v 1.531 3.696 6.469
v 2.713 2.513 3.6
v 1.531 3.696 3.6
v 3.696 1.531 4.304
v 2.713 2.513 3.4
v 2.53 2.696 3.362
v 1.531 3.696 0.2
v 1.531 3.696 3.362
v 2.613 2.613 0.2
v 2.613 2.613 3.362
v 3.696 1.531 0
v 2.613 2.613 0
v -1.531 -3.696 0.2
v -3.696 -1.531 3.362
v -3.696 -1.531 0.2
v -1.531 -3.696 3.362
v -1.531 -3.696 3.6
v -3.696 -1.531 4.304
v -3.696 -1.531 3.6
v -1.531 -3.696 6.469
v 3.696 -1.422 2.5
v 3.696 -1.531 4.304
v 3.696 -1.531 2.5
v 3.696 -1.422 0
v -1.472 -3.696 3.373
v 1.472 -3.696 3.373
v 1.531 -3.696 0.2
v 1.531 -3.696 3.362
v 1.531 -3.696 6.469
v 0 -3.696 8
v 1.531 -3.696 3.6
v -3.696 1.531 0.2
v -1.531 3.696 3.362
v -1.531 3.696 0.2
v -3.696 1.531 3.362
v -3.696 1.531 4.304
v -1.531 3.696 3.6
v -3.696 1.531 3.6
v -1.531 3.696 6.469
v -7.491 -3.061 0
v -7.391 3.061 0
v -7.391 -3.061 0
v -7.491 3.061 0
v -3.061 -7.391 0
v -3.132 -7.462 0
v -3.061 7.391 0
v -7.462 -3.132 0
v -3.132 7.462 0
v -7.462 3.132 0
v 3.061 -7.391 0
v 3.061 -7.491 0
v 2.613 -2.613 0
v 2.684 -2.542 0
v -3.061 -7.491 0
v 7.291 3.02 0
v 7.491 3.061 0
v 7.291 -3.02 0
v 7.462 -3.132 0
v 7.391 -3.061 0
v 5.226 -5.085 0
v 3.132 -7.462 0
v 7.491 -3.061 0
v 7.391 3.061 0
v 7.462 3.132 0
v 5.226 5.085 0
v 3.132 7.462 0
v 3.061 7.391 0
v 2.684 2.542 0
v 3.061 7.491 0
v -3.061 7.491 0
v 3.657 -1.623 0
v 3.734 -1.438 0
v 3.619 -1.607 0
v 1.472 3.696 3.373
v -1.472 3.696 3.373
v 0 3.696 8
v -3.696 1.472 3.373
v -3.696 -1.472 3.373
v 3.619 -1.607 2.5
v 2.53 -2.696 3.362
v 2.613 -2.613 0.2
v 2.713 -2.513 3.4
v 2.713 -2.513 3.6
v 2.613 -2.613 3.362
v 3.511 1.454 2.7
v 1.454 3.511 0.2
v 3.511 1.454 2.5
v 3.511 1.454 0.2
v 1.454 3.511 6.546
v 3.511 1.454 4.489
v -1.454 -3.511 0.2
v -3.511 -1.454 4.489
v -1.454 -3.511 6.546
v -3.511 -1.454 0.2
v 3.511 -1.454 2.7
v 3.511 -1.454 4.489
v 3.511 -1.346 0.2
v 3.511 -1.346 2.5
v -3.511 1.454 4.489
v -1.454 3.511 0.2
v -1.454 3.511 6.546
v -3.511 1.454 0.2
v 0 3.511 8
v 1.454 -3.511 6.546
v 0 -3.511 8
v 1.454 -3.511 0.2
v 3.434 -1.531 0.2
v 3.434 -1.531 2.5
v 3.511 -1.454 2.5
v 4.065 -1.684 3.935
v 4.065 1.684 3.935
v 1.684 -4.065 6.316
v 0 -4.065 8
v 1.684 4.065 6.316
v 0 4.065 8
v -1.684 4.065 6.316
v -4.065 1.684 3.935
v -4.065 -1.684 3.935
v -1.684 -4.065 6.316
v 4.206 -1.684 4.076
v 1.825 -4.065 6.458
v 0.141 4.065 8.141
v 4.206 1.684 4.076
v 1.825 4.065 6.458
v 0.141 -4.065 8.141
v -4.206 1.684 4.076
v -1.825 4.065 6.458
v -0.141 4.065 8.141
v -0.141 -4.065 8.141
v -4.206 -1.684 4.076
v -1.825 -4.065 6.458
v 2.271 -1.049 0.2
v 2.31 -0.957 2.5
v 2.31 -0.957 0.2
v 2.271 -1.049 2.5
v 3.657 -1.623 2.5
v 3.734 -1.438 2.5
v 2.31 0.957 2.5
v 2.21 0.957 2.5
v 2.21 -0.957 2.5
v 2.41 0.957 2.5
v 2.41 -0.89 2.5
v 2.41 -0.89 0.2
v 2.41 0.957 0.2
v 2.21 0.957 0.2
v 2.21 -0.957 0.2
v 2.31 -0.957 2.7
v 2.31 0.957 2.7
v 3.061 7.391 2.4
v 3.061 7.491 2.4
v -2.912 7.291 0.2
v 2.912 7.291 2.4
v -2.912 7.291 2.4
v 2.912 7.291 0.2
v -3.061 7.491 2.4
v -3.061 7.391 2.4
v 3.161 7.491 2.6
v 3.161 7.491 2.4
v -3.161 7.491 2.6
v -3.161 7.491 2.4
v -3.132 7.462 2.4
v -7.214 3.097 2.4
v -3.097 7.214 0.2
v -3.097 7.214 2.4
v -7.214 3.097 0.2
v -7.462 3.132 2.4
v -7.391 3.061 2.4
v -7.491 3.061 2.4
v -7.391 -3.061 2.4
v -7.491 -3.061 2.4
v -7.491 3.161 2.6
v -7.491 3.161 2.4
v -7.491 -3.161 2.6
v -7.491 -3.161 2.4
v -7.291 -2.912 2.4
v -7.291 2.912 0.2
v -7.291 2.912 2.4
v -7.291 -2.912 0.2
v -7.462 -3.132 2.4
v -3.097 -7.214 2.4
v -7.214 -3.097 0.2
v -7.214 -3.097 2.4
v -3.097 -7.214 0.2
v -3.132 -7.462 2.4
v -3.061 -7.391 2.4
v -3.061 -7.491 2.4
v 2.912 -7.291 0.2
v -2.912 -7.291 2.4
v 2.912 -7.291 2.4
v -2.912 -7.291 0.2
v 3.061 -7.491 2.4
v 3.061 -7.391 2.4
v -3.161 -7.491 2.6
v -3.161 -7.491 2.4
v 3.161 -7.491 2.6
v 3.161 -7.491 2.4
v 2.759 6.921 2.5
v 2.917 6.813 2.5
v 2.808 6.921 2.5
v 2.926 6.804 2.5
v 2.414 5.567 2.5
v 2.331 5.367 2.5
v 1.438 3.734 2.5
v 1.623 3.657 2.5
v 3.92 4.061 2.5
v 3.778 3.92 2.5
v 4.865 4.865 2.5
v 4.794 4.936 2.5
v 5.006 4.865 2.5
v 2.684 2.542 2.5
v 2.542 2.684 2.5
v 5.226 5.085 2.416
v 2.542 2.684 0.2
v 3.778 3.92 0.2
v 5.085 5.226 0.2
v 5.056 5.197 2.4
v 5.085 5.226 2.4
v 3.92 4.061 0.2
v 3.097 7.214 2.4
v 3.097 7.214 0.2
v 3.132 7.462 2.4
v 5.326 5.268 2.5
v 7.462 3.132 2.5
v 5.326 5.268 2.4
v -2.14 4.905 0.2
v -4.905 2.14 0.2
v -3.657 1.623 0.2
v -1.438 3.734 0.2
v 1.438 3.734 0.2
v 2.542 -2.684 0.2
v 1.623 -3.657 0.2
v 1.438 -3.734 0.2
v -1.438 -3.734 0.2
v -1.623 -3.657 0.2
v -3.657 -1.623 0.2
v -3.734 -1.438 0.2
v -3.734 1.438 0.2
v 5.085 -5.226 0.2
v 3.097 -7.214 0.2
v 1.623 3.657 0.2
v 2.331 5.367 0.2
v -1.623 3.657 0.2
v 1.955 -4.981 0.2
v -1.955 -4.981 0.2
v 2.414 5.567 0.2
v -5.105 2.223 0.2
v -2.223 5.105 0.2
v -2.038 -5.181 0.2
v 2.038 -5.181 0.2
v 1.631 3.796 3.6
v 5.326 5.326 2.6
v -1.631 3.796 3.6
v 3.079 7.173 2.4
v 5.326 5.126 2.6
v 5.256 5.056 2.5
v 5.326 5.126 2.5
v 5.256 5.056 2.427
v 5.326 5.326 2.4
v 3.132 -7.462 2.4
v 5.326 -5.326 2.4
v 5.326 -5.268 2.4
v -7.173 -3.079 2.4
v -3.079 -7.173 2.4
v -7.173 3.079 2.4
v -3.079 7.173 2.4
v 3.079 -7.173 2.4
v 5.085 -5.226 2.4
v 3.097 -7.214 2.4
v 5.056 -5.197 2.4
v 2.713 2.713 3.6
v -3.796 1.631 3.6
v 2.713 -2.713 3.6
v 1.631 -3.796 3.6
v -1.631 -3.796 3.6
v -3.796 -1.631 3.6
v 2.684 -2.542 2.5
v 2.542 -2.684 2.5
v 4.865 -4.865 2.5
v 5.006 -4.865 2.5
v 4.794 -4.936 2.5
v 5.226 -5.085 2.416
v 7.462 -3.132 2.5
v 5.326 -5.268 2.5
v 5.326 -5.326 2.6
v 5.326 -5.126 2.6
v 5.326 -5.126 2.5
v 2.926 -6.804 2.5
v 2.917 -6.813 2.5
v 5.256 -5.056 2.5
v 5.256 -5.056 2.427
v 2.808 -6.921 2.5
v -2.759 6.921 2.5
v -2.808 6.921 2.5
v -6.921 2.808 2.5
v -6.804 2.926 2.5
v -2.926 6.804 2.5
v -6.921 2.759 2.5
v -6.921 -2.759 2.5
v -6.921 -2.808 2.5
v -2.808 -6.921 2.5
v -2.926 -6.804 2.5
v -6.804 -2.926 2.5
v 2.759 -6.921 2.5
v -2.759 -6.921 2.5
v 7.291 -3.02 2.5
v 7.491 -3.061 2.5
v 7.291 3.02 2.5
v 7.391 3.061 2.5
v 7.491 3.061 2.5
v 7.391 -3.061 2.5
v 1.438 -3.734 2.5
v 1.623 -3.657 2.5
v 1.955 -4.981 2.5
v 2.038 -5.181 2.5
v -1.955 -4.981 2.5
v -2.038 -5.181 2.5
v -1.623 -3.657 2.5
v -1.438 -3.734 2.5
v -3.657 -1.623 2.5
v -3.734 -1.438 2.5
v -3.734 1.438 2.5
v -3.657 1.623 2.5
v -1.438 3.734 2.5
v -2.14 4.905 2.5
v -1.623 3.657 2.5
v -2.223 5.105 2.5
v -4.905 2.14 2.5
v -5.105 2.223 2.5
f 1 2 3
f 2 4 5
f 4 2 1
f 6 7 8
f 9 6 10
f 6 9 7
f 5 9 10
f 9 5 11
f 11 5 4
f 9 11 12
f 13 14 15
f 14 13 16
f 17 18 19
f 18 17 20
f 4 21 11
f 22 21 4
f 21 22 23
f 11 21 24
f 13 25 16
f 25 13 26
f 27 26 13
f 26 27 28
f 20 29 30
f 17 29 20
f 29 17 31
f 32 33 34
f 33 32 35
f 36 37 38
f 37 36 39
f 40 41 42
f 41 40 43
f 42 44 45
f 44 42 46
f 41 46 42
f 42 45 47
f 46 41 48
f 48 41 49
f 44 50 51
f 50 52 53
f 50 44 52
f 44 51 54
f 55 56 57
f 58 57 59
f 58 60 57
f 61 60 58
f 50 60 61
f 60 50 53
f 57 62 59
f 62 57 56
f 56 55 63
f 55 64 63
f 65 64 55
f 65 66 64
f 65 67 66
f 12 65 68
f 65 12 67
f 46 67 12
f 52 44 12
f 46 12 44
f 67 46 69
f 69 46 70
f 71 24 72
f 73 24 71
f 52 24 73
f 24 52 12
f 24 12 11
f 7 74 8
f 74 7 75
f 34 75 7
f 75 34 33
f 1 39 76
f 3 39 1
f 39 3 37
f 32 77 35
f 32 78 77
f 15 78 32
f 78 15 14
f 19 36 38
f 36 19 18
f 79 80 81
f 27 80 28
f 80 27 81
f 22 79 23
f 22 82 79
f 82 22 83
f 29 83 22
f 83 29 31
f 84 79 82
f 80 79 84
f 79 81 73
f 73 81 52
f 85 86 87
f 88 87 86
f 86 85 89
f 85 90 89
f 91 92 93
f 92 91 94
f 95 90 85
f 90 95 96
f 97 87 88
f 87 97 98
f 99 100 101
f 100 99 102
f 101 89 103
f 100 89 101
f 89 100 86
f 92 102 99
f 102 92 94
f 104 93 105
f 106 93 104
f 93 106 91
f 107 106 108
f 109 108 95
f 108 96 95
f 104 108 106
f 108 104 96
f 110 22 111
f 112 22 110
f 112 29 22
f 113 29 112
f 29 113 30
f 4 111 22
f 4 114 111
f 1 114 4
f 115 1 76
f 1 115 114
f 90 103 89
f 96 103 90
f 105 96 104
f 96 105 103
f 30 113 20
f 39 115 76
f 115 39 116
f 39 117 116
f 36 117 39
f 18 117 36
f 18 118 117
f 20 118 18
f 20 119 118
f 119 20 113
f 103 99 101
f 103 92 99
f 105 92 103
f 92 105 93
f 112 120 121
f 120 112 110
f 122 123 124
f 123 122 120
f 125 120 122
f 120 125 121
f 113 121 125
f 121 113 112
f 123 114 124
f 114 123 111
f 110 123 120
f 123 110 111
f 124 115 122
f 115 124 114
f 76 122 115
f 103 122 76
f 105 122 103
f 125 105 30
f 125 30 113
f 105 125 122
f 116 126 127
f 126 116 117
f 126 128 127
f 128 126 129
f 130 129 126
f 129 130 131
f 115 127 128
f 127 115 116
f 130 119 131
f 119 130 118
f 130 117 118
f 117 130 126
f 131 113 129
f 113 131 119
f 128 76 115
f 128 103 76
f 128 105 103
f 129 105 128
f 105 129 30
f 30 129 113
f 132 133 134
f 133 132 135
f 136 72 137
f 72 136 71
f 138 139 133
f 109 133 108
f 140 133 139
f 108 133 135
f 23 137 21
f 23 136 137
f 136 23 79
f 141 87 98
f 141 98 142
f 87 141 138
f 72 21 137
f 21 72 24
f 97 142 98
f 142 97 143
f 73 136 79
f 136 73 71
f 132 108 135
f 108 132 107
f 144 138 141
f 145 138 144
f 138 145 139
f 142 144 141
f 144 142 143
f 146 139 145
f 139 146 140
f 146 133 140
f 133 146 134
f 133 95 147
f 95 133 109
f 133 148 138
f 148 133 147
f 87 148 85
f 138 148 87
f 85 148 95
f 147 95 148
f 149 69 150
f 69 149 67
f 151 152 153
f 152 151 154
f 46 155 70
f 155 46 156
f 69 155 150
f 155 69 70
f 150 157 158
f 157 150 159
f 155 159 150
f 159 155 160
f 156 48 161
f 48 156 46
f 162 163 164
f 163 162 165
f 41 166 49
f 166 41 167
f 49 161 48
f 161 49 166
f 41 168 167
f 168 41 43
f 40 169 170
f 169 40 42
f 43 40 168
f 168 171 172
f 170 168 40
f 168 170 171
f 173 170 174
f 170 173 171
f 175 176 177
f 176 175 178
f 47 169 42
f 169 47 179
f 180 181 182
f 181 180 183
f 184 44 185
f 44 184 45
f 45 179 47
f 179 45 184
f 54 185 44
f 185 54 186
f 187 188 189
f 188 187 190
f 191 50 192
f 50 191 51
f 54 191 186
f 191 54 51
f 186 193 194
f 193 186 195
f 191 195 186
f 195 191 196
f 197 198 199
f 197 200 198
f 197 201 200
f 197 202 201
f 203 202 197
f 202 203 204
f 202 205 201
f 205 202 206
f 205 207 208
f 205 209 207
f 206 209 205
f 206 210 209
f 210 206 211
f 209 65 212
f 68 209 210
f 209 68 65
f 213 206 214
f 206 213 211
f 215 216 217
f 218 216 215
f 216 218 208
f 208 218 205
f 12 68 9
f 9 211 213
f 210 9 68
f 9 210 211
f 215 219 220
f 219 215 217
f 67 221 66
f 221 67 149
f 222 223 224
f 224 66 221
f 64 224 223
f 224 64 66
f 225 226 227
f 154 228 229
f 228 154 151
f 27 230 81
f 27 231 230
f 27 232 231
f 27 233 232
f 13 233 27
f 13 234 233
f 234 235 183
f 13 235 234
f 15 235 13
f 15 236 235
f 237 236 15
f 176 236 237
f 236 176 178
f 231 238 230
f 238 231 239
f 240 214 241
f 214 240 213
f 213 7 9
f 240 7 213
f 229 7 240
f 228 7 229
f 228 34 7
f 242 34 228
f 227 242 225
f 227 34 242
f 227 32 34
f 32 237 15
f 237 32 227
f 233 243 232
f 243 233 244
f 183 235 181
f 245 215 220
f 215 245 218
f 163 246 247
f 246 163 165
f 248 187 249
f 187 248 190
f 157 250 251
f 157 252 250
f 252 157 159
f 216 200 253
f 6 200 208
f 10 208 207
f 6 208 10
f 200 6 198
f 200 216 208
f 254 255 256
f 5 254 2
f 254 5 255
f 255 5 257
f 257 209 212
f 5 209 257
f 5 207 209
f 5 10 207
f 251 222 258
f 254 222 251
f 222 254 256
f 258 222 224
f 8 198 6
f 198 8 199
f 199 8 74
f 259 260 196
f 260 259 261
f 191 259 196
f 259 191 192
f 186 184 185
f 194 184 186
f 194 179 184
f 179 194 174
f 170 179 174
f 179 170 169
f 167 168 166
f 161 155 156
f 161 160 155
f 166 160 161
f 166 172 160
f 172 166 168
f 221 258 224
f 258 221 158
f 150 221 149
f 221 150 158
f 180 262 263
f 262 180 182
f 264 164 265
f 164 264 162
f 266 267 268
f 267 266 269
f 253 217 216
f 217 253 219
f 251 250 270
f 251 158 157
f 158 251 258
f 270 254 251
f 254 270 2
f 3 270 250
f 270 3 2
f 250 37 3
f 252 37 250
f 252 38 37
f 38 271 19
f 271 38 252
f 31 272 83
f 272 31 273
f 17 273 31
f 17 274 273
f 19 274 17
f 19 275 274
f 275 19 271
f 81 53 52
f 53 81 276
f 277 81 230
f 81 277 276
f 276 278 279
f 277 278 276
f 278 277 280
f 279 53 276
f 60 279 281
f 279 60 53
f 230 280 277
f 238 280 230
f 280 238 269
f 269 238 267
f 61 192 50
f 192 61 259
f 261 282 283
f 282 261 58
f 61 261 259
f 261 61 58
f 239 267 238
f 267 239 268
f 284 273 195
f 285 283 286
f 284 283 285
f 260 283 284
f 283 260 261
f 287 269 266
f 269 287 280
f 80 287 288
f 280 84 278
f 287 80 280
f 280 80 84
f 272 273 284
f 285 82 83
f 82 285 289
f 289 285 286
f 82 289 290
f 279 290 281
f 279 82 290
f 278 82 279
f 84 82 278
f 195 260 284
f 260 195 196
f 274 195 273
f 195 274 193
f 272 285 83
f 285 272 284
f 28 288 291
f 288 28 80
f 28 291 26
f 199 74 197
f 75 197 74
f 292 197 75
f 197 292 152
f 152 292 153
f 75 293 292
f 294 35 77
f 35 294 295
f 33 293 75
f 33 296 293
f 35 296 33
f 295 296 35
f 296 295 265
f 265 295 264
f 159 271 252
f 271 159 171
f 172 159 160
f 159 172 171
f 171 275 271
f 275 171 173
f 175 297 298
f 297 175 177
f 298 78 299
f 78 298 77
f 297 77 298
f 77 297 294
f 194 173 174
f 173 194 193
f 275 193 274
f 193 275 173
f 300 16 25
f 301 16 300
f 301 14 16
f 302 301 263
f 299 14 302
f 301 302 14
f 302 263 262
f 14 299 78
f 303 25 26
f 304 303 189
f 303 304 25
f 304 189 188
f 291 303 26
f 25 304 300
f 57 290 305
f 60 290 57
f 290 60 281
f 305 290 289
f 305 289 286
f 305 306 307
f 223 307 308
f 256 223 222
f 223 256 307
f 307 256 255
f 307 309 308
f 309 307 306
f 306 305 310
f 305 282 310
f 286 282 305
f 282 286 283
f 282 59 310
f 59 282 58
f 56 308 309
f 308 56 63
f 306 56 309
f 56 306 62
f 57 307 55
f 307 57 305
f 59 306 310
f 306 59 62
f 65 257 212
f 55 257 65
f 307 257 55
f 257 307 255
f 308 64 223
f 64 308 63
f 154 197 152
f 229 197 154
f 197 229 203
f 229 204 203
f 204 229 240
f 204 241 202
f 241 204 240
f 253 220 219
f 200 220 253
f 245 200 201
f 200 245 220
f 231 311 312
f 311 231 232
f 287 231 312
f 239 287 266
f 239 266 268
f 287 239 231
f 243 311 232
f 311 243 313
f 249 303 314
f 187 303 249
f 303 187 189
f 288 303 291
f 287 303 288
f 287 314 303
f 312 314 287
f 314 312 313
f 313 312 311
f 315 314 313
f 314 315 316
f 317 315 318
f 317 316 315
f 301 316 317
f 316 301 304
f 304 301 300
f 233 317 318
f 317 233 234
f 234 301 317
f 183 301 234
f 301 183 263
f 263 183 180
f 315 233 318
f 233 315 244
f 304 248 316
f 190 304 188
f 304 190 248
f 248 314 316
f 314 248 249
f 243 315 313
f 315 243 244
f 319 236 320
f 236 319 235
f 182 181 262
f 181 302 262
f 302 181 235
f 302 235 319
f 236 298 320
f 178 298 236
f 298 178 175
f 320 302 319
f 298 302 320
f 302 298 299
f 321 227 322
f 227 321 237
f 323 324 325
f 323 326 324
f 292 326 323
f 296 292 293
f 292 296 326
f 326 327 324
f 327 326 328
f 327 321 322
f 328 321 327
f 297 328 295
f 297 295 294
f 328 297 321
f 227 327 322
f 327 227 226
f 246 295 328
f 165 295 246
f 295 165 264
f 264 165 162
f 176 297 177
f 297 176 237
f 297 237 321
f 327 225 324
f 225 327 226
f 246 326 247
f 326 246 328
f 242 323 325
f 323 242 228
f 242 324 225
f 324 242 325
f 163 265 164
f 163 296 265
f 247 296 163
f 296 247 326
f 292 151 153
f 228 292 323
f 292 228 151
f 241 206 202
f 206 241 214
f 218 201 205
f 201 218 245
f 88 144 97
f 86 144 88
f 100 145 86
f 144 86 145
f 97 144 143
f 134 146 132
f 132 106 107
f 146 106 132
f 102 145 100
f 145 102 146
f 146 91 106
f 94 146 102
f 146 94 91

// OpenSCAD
// configure the rendering
show_floor = true;
show_roof = true;

// constants
gr = 1.61803; // golden ration

// configure the house
wt = 0.2;  // wall thickness
corners = 8; // number of corners in main room
mrr = 4; // main room radius
mrh = 4; // main room height
mrrh = 2; // main room roof height
hr = mrr + 4; // house radius
orh = 2.5; // outer room height
orrh = 1; // outer room roof height

// calculate approximate house size
function house_size() =
   let(v=360/corners/2)
   let(a=hr*sin(v))
   let(b=hr*cos(v))
   (corners-2)*a*b;
echo("area of house = ", house_size());

// calculate the coordinates for the corners
function p(i, r) =
   let (vz = 360/corners/2)
   let (angle=i*(360/corners) - vz)
   [ r*cos(angle)
   , r*sin(angle)
   ];

function inbetween(p1, p2, procent) =
    let (x_diff = p2[0] - p1[0])
    let (y_diff = p2[1] - p1[1])
    [ p1[0] + x_diff*procent/100
    , p1[1] + y_diff*procent/100
    ];

// create a wall of thickness wt
module wall(p1, p2, h) {
    let (x_diff = p2[0] - p1[0])
    let (y_diff = p2[1] - p1[1])
    let (len = sqrt(pow(x_diff, 2) +
                    pow(y_diff, 2)))
    linear_extrude(height = h)
    translate(p1)
    rotate(atan2(y_diff, x_diff))
    translate([0, -wt/2])
    square([len, wt]);
}

module octagon(r, h) {
    coords=[for (i = [0:corners-1]) p(i, r)];
    linear_extrude(height = h)
    polygon(coords);
}

module octawalls(r, h) {
    difference () {
        octagon(r, h);
        translate([0, 0, -wt])
        octagon(r - wt, h + 2*wt);
    }
}

module hall(size, h) {
    r = mrr - size;
    wall(p(0, mrr), p(0, r), h);
    wall(p(0, r), p(1, r), h);
    translate([0, 0, h])
    linear_extrude(height = wt)
    polygon([p(0,mrr), p(0, r), p(1, r), p(1, mrr)]);
}

module main_roof(th) {
    vr = 45; // main roof angle
    rr = mrr + 0.4; // roof radius
    module half_roof() {
        assert(corners % 2 == 0);
        translate([0,0,mrh + mrr*tan(vr)])
        rotate(vr, [0, 1, 0])
        rotate(-90)
        difference() {
            scale([1,1/cos(vr), 1])
            octagon(rr, th);
            translate([0, -rr, 0])
            cube([rr*2, rr*2, 3*th], center = true);
        }
    }
    half_roof();
    rotate(180) half_roof();
}

// floor of main room
if (show_floor) {
    octagon(mrr, wt);
}
// walls of main room
difference() {
    octawalls(mrr, mrh+4);
    main_roof(wt*14);
}
// roof of main room
if (show_roof) {
    main_roof(wt);
}

// hall
hall(1.5, orh);

// outer walls
for (i = [2:corners-2])
    wall(p(i, hr), p(i+1, hr), orh);

// the non-standard outer wall on the right
module non_standard_right() {
    // calculate corners of room
    p1 = inbetween(p(1,mrr), p(2, mrr), 50);
    p2 = inbetween(p(1,hr), p(2, hr), 50);
    p3 = p(2, hr);
    p4 = p(2, mrr);
    // walls
    wall(p1, p2, orh);
    wall(p2, p3, orh);
    // floor
    if (show_floor) {
        linear_extrude(height = wt)
        polygon([p1, p2, p3, p4]);
    }
    // roof
    if (show_roof) {
        translate([0,0,orh])
        hull()
        for(p=[ [p1[0], p1[1], 0] + [0,0,orrh]
              , p2, p3
              , [p4[0], p4[1], 0] + [0,0,orrh]])
            translate(p) cube(wt, true);
    }
}
non_standard_right();

// the non-standard outer wall on the left
module non_standard_left() {
    // calculate corners of room
    p1 = inbetween(p(corners-1,mrr), p(0, mrr), 50);
    p2 = inbetween(p(corners-1,hr), p(0, hr), 50);
    p3 = p(corners-1, hr);
    p4 = p(corners-1, mrr);
    // walls
    wall(p1, p2, orh);
    wall(p2, p3, orh);
    // floor
    if (show_floor) {
        linear_extrude(height = wt)
        polygon([p1, p2, p3, p4]);
    }
    // roof
    if (show_roof) {
        translate([0,0,orh])
        hull()
        for(p=[ [p1[0], p1[1], 0] + [0,0,orrh]
              , p2, p3
              , [p4[0], p4[1], 0] + [0,0,orrh]])
            translate(p) cube(wt, true);
    }
}
non_standard_left();

// floor on outer rooms
if (show_floor) {
    for (i = [2:corners-2])
        linear_extrude(height = wt)
        polygon([p(i, mrr), p(i, hr), p(i+1, hr), p(i+1,mrr)]);
}

// roof on outer rooms
if (show_roof) {
    for (i = [2:corners-2])
        let (p1 = p(i, mrr))
        let (p2 = p(i+1, mrr))
        translate([0,0,orh])
        hull()
        for(p=[ [p1[0], p1[1], 0] + [0,0,orrh]
              , p(i, hr)
              , p(i+1, hr)
              , [p2[0], p2[1], 0] + [0,0,orrh]
              ])
            translate(p) cube(wt, true);

}

// winter garden
module winter_garden() {
    // calculate the corners
    p1 = inbetween(p(corners-1,hr), p(0, hr), 50);
    p2 = p(0, hr);
    p3 = p(1, hr);
    p4 = inbetween(p(1,hr), p(2, hr), 50);
    // walls
    color("gray") wall(p1, p2, orh);
    color("gray") wall(p2, p3, orh);
    color("gray") wall(p3, p4, orh);
}
winter_garden();

// inner walls
module inner_walls() {
    if (corners == 8) {
        wall(p(2, mrr), p(2, hr), orh);
        wall(p(7, mrr), p(7, hr), orh);
        wall(p(6, mrr), p(6, hr), orh);
        wall(p(7, mrr+1.5), p(6, mrr+1.5), orh);
        wall(p(5, mrr), p(5, hr), orh);
        wall(p(4, mrr), p(4, hr), orh);
        wall(p(3, mrr+1.5), p(4, mrr+1.5), orh);
        wall(p(3, mrr), p(3, hr), orh);
        wall( inbetween(p(1,mrr+(hr-mrr)/2), p(2, mrr+(hr-mrr)/2), 50)
        , p(2, mrr+(hr-mrr)/2), orh);
    }
}
inner_walls();
